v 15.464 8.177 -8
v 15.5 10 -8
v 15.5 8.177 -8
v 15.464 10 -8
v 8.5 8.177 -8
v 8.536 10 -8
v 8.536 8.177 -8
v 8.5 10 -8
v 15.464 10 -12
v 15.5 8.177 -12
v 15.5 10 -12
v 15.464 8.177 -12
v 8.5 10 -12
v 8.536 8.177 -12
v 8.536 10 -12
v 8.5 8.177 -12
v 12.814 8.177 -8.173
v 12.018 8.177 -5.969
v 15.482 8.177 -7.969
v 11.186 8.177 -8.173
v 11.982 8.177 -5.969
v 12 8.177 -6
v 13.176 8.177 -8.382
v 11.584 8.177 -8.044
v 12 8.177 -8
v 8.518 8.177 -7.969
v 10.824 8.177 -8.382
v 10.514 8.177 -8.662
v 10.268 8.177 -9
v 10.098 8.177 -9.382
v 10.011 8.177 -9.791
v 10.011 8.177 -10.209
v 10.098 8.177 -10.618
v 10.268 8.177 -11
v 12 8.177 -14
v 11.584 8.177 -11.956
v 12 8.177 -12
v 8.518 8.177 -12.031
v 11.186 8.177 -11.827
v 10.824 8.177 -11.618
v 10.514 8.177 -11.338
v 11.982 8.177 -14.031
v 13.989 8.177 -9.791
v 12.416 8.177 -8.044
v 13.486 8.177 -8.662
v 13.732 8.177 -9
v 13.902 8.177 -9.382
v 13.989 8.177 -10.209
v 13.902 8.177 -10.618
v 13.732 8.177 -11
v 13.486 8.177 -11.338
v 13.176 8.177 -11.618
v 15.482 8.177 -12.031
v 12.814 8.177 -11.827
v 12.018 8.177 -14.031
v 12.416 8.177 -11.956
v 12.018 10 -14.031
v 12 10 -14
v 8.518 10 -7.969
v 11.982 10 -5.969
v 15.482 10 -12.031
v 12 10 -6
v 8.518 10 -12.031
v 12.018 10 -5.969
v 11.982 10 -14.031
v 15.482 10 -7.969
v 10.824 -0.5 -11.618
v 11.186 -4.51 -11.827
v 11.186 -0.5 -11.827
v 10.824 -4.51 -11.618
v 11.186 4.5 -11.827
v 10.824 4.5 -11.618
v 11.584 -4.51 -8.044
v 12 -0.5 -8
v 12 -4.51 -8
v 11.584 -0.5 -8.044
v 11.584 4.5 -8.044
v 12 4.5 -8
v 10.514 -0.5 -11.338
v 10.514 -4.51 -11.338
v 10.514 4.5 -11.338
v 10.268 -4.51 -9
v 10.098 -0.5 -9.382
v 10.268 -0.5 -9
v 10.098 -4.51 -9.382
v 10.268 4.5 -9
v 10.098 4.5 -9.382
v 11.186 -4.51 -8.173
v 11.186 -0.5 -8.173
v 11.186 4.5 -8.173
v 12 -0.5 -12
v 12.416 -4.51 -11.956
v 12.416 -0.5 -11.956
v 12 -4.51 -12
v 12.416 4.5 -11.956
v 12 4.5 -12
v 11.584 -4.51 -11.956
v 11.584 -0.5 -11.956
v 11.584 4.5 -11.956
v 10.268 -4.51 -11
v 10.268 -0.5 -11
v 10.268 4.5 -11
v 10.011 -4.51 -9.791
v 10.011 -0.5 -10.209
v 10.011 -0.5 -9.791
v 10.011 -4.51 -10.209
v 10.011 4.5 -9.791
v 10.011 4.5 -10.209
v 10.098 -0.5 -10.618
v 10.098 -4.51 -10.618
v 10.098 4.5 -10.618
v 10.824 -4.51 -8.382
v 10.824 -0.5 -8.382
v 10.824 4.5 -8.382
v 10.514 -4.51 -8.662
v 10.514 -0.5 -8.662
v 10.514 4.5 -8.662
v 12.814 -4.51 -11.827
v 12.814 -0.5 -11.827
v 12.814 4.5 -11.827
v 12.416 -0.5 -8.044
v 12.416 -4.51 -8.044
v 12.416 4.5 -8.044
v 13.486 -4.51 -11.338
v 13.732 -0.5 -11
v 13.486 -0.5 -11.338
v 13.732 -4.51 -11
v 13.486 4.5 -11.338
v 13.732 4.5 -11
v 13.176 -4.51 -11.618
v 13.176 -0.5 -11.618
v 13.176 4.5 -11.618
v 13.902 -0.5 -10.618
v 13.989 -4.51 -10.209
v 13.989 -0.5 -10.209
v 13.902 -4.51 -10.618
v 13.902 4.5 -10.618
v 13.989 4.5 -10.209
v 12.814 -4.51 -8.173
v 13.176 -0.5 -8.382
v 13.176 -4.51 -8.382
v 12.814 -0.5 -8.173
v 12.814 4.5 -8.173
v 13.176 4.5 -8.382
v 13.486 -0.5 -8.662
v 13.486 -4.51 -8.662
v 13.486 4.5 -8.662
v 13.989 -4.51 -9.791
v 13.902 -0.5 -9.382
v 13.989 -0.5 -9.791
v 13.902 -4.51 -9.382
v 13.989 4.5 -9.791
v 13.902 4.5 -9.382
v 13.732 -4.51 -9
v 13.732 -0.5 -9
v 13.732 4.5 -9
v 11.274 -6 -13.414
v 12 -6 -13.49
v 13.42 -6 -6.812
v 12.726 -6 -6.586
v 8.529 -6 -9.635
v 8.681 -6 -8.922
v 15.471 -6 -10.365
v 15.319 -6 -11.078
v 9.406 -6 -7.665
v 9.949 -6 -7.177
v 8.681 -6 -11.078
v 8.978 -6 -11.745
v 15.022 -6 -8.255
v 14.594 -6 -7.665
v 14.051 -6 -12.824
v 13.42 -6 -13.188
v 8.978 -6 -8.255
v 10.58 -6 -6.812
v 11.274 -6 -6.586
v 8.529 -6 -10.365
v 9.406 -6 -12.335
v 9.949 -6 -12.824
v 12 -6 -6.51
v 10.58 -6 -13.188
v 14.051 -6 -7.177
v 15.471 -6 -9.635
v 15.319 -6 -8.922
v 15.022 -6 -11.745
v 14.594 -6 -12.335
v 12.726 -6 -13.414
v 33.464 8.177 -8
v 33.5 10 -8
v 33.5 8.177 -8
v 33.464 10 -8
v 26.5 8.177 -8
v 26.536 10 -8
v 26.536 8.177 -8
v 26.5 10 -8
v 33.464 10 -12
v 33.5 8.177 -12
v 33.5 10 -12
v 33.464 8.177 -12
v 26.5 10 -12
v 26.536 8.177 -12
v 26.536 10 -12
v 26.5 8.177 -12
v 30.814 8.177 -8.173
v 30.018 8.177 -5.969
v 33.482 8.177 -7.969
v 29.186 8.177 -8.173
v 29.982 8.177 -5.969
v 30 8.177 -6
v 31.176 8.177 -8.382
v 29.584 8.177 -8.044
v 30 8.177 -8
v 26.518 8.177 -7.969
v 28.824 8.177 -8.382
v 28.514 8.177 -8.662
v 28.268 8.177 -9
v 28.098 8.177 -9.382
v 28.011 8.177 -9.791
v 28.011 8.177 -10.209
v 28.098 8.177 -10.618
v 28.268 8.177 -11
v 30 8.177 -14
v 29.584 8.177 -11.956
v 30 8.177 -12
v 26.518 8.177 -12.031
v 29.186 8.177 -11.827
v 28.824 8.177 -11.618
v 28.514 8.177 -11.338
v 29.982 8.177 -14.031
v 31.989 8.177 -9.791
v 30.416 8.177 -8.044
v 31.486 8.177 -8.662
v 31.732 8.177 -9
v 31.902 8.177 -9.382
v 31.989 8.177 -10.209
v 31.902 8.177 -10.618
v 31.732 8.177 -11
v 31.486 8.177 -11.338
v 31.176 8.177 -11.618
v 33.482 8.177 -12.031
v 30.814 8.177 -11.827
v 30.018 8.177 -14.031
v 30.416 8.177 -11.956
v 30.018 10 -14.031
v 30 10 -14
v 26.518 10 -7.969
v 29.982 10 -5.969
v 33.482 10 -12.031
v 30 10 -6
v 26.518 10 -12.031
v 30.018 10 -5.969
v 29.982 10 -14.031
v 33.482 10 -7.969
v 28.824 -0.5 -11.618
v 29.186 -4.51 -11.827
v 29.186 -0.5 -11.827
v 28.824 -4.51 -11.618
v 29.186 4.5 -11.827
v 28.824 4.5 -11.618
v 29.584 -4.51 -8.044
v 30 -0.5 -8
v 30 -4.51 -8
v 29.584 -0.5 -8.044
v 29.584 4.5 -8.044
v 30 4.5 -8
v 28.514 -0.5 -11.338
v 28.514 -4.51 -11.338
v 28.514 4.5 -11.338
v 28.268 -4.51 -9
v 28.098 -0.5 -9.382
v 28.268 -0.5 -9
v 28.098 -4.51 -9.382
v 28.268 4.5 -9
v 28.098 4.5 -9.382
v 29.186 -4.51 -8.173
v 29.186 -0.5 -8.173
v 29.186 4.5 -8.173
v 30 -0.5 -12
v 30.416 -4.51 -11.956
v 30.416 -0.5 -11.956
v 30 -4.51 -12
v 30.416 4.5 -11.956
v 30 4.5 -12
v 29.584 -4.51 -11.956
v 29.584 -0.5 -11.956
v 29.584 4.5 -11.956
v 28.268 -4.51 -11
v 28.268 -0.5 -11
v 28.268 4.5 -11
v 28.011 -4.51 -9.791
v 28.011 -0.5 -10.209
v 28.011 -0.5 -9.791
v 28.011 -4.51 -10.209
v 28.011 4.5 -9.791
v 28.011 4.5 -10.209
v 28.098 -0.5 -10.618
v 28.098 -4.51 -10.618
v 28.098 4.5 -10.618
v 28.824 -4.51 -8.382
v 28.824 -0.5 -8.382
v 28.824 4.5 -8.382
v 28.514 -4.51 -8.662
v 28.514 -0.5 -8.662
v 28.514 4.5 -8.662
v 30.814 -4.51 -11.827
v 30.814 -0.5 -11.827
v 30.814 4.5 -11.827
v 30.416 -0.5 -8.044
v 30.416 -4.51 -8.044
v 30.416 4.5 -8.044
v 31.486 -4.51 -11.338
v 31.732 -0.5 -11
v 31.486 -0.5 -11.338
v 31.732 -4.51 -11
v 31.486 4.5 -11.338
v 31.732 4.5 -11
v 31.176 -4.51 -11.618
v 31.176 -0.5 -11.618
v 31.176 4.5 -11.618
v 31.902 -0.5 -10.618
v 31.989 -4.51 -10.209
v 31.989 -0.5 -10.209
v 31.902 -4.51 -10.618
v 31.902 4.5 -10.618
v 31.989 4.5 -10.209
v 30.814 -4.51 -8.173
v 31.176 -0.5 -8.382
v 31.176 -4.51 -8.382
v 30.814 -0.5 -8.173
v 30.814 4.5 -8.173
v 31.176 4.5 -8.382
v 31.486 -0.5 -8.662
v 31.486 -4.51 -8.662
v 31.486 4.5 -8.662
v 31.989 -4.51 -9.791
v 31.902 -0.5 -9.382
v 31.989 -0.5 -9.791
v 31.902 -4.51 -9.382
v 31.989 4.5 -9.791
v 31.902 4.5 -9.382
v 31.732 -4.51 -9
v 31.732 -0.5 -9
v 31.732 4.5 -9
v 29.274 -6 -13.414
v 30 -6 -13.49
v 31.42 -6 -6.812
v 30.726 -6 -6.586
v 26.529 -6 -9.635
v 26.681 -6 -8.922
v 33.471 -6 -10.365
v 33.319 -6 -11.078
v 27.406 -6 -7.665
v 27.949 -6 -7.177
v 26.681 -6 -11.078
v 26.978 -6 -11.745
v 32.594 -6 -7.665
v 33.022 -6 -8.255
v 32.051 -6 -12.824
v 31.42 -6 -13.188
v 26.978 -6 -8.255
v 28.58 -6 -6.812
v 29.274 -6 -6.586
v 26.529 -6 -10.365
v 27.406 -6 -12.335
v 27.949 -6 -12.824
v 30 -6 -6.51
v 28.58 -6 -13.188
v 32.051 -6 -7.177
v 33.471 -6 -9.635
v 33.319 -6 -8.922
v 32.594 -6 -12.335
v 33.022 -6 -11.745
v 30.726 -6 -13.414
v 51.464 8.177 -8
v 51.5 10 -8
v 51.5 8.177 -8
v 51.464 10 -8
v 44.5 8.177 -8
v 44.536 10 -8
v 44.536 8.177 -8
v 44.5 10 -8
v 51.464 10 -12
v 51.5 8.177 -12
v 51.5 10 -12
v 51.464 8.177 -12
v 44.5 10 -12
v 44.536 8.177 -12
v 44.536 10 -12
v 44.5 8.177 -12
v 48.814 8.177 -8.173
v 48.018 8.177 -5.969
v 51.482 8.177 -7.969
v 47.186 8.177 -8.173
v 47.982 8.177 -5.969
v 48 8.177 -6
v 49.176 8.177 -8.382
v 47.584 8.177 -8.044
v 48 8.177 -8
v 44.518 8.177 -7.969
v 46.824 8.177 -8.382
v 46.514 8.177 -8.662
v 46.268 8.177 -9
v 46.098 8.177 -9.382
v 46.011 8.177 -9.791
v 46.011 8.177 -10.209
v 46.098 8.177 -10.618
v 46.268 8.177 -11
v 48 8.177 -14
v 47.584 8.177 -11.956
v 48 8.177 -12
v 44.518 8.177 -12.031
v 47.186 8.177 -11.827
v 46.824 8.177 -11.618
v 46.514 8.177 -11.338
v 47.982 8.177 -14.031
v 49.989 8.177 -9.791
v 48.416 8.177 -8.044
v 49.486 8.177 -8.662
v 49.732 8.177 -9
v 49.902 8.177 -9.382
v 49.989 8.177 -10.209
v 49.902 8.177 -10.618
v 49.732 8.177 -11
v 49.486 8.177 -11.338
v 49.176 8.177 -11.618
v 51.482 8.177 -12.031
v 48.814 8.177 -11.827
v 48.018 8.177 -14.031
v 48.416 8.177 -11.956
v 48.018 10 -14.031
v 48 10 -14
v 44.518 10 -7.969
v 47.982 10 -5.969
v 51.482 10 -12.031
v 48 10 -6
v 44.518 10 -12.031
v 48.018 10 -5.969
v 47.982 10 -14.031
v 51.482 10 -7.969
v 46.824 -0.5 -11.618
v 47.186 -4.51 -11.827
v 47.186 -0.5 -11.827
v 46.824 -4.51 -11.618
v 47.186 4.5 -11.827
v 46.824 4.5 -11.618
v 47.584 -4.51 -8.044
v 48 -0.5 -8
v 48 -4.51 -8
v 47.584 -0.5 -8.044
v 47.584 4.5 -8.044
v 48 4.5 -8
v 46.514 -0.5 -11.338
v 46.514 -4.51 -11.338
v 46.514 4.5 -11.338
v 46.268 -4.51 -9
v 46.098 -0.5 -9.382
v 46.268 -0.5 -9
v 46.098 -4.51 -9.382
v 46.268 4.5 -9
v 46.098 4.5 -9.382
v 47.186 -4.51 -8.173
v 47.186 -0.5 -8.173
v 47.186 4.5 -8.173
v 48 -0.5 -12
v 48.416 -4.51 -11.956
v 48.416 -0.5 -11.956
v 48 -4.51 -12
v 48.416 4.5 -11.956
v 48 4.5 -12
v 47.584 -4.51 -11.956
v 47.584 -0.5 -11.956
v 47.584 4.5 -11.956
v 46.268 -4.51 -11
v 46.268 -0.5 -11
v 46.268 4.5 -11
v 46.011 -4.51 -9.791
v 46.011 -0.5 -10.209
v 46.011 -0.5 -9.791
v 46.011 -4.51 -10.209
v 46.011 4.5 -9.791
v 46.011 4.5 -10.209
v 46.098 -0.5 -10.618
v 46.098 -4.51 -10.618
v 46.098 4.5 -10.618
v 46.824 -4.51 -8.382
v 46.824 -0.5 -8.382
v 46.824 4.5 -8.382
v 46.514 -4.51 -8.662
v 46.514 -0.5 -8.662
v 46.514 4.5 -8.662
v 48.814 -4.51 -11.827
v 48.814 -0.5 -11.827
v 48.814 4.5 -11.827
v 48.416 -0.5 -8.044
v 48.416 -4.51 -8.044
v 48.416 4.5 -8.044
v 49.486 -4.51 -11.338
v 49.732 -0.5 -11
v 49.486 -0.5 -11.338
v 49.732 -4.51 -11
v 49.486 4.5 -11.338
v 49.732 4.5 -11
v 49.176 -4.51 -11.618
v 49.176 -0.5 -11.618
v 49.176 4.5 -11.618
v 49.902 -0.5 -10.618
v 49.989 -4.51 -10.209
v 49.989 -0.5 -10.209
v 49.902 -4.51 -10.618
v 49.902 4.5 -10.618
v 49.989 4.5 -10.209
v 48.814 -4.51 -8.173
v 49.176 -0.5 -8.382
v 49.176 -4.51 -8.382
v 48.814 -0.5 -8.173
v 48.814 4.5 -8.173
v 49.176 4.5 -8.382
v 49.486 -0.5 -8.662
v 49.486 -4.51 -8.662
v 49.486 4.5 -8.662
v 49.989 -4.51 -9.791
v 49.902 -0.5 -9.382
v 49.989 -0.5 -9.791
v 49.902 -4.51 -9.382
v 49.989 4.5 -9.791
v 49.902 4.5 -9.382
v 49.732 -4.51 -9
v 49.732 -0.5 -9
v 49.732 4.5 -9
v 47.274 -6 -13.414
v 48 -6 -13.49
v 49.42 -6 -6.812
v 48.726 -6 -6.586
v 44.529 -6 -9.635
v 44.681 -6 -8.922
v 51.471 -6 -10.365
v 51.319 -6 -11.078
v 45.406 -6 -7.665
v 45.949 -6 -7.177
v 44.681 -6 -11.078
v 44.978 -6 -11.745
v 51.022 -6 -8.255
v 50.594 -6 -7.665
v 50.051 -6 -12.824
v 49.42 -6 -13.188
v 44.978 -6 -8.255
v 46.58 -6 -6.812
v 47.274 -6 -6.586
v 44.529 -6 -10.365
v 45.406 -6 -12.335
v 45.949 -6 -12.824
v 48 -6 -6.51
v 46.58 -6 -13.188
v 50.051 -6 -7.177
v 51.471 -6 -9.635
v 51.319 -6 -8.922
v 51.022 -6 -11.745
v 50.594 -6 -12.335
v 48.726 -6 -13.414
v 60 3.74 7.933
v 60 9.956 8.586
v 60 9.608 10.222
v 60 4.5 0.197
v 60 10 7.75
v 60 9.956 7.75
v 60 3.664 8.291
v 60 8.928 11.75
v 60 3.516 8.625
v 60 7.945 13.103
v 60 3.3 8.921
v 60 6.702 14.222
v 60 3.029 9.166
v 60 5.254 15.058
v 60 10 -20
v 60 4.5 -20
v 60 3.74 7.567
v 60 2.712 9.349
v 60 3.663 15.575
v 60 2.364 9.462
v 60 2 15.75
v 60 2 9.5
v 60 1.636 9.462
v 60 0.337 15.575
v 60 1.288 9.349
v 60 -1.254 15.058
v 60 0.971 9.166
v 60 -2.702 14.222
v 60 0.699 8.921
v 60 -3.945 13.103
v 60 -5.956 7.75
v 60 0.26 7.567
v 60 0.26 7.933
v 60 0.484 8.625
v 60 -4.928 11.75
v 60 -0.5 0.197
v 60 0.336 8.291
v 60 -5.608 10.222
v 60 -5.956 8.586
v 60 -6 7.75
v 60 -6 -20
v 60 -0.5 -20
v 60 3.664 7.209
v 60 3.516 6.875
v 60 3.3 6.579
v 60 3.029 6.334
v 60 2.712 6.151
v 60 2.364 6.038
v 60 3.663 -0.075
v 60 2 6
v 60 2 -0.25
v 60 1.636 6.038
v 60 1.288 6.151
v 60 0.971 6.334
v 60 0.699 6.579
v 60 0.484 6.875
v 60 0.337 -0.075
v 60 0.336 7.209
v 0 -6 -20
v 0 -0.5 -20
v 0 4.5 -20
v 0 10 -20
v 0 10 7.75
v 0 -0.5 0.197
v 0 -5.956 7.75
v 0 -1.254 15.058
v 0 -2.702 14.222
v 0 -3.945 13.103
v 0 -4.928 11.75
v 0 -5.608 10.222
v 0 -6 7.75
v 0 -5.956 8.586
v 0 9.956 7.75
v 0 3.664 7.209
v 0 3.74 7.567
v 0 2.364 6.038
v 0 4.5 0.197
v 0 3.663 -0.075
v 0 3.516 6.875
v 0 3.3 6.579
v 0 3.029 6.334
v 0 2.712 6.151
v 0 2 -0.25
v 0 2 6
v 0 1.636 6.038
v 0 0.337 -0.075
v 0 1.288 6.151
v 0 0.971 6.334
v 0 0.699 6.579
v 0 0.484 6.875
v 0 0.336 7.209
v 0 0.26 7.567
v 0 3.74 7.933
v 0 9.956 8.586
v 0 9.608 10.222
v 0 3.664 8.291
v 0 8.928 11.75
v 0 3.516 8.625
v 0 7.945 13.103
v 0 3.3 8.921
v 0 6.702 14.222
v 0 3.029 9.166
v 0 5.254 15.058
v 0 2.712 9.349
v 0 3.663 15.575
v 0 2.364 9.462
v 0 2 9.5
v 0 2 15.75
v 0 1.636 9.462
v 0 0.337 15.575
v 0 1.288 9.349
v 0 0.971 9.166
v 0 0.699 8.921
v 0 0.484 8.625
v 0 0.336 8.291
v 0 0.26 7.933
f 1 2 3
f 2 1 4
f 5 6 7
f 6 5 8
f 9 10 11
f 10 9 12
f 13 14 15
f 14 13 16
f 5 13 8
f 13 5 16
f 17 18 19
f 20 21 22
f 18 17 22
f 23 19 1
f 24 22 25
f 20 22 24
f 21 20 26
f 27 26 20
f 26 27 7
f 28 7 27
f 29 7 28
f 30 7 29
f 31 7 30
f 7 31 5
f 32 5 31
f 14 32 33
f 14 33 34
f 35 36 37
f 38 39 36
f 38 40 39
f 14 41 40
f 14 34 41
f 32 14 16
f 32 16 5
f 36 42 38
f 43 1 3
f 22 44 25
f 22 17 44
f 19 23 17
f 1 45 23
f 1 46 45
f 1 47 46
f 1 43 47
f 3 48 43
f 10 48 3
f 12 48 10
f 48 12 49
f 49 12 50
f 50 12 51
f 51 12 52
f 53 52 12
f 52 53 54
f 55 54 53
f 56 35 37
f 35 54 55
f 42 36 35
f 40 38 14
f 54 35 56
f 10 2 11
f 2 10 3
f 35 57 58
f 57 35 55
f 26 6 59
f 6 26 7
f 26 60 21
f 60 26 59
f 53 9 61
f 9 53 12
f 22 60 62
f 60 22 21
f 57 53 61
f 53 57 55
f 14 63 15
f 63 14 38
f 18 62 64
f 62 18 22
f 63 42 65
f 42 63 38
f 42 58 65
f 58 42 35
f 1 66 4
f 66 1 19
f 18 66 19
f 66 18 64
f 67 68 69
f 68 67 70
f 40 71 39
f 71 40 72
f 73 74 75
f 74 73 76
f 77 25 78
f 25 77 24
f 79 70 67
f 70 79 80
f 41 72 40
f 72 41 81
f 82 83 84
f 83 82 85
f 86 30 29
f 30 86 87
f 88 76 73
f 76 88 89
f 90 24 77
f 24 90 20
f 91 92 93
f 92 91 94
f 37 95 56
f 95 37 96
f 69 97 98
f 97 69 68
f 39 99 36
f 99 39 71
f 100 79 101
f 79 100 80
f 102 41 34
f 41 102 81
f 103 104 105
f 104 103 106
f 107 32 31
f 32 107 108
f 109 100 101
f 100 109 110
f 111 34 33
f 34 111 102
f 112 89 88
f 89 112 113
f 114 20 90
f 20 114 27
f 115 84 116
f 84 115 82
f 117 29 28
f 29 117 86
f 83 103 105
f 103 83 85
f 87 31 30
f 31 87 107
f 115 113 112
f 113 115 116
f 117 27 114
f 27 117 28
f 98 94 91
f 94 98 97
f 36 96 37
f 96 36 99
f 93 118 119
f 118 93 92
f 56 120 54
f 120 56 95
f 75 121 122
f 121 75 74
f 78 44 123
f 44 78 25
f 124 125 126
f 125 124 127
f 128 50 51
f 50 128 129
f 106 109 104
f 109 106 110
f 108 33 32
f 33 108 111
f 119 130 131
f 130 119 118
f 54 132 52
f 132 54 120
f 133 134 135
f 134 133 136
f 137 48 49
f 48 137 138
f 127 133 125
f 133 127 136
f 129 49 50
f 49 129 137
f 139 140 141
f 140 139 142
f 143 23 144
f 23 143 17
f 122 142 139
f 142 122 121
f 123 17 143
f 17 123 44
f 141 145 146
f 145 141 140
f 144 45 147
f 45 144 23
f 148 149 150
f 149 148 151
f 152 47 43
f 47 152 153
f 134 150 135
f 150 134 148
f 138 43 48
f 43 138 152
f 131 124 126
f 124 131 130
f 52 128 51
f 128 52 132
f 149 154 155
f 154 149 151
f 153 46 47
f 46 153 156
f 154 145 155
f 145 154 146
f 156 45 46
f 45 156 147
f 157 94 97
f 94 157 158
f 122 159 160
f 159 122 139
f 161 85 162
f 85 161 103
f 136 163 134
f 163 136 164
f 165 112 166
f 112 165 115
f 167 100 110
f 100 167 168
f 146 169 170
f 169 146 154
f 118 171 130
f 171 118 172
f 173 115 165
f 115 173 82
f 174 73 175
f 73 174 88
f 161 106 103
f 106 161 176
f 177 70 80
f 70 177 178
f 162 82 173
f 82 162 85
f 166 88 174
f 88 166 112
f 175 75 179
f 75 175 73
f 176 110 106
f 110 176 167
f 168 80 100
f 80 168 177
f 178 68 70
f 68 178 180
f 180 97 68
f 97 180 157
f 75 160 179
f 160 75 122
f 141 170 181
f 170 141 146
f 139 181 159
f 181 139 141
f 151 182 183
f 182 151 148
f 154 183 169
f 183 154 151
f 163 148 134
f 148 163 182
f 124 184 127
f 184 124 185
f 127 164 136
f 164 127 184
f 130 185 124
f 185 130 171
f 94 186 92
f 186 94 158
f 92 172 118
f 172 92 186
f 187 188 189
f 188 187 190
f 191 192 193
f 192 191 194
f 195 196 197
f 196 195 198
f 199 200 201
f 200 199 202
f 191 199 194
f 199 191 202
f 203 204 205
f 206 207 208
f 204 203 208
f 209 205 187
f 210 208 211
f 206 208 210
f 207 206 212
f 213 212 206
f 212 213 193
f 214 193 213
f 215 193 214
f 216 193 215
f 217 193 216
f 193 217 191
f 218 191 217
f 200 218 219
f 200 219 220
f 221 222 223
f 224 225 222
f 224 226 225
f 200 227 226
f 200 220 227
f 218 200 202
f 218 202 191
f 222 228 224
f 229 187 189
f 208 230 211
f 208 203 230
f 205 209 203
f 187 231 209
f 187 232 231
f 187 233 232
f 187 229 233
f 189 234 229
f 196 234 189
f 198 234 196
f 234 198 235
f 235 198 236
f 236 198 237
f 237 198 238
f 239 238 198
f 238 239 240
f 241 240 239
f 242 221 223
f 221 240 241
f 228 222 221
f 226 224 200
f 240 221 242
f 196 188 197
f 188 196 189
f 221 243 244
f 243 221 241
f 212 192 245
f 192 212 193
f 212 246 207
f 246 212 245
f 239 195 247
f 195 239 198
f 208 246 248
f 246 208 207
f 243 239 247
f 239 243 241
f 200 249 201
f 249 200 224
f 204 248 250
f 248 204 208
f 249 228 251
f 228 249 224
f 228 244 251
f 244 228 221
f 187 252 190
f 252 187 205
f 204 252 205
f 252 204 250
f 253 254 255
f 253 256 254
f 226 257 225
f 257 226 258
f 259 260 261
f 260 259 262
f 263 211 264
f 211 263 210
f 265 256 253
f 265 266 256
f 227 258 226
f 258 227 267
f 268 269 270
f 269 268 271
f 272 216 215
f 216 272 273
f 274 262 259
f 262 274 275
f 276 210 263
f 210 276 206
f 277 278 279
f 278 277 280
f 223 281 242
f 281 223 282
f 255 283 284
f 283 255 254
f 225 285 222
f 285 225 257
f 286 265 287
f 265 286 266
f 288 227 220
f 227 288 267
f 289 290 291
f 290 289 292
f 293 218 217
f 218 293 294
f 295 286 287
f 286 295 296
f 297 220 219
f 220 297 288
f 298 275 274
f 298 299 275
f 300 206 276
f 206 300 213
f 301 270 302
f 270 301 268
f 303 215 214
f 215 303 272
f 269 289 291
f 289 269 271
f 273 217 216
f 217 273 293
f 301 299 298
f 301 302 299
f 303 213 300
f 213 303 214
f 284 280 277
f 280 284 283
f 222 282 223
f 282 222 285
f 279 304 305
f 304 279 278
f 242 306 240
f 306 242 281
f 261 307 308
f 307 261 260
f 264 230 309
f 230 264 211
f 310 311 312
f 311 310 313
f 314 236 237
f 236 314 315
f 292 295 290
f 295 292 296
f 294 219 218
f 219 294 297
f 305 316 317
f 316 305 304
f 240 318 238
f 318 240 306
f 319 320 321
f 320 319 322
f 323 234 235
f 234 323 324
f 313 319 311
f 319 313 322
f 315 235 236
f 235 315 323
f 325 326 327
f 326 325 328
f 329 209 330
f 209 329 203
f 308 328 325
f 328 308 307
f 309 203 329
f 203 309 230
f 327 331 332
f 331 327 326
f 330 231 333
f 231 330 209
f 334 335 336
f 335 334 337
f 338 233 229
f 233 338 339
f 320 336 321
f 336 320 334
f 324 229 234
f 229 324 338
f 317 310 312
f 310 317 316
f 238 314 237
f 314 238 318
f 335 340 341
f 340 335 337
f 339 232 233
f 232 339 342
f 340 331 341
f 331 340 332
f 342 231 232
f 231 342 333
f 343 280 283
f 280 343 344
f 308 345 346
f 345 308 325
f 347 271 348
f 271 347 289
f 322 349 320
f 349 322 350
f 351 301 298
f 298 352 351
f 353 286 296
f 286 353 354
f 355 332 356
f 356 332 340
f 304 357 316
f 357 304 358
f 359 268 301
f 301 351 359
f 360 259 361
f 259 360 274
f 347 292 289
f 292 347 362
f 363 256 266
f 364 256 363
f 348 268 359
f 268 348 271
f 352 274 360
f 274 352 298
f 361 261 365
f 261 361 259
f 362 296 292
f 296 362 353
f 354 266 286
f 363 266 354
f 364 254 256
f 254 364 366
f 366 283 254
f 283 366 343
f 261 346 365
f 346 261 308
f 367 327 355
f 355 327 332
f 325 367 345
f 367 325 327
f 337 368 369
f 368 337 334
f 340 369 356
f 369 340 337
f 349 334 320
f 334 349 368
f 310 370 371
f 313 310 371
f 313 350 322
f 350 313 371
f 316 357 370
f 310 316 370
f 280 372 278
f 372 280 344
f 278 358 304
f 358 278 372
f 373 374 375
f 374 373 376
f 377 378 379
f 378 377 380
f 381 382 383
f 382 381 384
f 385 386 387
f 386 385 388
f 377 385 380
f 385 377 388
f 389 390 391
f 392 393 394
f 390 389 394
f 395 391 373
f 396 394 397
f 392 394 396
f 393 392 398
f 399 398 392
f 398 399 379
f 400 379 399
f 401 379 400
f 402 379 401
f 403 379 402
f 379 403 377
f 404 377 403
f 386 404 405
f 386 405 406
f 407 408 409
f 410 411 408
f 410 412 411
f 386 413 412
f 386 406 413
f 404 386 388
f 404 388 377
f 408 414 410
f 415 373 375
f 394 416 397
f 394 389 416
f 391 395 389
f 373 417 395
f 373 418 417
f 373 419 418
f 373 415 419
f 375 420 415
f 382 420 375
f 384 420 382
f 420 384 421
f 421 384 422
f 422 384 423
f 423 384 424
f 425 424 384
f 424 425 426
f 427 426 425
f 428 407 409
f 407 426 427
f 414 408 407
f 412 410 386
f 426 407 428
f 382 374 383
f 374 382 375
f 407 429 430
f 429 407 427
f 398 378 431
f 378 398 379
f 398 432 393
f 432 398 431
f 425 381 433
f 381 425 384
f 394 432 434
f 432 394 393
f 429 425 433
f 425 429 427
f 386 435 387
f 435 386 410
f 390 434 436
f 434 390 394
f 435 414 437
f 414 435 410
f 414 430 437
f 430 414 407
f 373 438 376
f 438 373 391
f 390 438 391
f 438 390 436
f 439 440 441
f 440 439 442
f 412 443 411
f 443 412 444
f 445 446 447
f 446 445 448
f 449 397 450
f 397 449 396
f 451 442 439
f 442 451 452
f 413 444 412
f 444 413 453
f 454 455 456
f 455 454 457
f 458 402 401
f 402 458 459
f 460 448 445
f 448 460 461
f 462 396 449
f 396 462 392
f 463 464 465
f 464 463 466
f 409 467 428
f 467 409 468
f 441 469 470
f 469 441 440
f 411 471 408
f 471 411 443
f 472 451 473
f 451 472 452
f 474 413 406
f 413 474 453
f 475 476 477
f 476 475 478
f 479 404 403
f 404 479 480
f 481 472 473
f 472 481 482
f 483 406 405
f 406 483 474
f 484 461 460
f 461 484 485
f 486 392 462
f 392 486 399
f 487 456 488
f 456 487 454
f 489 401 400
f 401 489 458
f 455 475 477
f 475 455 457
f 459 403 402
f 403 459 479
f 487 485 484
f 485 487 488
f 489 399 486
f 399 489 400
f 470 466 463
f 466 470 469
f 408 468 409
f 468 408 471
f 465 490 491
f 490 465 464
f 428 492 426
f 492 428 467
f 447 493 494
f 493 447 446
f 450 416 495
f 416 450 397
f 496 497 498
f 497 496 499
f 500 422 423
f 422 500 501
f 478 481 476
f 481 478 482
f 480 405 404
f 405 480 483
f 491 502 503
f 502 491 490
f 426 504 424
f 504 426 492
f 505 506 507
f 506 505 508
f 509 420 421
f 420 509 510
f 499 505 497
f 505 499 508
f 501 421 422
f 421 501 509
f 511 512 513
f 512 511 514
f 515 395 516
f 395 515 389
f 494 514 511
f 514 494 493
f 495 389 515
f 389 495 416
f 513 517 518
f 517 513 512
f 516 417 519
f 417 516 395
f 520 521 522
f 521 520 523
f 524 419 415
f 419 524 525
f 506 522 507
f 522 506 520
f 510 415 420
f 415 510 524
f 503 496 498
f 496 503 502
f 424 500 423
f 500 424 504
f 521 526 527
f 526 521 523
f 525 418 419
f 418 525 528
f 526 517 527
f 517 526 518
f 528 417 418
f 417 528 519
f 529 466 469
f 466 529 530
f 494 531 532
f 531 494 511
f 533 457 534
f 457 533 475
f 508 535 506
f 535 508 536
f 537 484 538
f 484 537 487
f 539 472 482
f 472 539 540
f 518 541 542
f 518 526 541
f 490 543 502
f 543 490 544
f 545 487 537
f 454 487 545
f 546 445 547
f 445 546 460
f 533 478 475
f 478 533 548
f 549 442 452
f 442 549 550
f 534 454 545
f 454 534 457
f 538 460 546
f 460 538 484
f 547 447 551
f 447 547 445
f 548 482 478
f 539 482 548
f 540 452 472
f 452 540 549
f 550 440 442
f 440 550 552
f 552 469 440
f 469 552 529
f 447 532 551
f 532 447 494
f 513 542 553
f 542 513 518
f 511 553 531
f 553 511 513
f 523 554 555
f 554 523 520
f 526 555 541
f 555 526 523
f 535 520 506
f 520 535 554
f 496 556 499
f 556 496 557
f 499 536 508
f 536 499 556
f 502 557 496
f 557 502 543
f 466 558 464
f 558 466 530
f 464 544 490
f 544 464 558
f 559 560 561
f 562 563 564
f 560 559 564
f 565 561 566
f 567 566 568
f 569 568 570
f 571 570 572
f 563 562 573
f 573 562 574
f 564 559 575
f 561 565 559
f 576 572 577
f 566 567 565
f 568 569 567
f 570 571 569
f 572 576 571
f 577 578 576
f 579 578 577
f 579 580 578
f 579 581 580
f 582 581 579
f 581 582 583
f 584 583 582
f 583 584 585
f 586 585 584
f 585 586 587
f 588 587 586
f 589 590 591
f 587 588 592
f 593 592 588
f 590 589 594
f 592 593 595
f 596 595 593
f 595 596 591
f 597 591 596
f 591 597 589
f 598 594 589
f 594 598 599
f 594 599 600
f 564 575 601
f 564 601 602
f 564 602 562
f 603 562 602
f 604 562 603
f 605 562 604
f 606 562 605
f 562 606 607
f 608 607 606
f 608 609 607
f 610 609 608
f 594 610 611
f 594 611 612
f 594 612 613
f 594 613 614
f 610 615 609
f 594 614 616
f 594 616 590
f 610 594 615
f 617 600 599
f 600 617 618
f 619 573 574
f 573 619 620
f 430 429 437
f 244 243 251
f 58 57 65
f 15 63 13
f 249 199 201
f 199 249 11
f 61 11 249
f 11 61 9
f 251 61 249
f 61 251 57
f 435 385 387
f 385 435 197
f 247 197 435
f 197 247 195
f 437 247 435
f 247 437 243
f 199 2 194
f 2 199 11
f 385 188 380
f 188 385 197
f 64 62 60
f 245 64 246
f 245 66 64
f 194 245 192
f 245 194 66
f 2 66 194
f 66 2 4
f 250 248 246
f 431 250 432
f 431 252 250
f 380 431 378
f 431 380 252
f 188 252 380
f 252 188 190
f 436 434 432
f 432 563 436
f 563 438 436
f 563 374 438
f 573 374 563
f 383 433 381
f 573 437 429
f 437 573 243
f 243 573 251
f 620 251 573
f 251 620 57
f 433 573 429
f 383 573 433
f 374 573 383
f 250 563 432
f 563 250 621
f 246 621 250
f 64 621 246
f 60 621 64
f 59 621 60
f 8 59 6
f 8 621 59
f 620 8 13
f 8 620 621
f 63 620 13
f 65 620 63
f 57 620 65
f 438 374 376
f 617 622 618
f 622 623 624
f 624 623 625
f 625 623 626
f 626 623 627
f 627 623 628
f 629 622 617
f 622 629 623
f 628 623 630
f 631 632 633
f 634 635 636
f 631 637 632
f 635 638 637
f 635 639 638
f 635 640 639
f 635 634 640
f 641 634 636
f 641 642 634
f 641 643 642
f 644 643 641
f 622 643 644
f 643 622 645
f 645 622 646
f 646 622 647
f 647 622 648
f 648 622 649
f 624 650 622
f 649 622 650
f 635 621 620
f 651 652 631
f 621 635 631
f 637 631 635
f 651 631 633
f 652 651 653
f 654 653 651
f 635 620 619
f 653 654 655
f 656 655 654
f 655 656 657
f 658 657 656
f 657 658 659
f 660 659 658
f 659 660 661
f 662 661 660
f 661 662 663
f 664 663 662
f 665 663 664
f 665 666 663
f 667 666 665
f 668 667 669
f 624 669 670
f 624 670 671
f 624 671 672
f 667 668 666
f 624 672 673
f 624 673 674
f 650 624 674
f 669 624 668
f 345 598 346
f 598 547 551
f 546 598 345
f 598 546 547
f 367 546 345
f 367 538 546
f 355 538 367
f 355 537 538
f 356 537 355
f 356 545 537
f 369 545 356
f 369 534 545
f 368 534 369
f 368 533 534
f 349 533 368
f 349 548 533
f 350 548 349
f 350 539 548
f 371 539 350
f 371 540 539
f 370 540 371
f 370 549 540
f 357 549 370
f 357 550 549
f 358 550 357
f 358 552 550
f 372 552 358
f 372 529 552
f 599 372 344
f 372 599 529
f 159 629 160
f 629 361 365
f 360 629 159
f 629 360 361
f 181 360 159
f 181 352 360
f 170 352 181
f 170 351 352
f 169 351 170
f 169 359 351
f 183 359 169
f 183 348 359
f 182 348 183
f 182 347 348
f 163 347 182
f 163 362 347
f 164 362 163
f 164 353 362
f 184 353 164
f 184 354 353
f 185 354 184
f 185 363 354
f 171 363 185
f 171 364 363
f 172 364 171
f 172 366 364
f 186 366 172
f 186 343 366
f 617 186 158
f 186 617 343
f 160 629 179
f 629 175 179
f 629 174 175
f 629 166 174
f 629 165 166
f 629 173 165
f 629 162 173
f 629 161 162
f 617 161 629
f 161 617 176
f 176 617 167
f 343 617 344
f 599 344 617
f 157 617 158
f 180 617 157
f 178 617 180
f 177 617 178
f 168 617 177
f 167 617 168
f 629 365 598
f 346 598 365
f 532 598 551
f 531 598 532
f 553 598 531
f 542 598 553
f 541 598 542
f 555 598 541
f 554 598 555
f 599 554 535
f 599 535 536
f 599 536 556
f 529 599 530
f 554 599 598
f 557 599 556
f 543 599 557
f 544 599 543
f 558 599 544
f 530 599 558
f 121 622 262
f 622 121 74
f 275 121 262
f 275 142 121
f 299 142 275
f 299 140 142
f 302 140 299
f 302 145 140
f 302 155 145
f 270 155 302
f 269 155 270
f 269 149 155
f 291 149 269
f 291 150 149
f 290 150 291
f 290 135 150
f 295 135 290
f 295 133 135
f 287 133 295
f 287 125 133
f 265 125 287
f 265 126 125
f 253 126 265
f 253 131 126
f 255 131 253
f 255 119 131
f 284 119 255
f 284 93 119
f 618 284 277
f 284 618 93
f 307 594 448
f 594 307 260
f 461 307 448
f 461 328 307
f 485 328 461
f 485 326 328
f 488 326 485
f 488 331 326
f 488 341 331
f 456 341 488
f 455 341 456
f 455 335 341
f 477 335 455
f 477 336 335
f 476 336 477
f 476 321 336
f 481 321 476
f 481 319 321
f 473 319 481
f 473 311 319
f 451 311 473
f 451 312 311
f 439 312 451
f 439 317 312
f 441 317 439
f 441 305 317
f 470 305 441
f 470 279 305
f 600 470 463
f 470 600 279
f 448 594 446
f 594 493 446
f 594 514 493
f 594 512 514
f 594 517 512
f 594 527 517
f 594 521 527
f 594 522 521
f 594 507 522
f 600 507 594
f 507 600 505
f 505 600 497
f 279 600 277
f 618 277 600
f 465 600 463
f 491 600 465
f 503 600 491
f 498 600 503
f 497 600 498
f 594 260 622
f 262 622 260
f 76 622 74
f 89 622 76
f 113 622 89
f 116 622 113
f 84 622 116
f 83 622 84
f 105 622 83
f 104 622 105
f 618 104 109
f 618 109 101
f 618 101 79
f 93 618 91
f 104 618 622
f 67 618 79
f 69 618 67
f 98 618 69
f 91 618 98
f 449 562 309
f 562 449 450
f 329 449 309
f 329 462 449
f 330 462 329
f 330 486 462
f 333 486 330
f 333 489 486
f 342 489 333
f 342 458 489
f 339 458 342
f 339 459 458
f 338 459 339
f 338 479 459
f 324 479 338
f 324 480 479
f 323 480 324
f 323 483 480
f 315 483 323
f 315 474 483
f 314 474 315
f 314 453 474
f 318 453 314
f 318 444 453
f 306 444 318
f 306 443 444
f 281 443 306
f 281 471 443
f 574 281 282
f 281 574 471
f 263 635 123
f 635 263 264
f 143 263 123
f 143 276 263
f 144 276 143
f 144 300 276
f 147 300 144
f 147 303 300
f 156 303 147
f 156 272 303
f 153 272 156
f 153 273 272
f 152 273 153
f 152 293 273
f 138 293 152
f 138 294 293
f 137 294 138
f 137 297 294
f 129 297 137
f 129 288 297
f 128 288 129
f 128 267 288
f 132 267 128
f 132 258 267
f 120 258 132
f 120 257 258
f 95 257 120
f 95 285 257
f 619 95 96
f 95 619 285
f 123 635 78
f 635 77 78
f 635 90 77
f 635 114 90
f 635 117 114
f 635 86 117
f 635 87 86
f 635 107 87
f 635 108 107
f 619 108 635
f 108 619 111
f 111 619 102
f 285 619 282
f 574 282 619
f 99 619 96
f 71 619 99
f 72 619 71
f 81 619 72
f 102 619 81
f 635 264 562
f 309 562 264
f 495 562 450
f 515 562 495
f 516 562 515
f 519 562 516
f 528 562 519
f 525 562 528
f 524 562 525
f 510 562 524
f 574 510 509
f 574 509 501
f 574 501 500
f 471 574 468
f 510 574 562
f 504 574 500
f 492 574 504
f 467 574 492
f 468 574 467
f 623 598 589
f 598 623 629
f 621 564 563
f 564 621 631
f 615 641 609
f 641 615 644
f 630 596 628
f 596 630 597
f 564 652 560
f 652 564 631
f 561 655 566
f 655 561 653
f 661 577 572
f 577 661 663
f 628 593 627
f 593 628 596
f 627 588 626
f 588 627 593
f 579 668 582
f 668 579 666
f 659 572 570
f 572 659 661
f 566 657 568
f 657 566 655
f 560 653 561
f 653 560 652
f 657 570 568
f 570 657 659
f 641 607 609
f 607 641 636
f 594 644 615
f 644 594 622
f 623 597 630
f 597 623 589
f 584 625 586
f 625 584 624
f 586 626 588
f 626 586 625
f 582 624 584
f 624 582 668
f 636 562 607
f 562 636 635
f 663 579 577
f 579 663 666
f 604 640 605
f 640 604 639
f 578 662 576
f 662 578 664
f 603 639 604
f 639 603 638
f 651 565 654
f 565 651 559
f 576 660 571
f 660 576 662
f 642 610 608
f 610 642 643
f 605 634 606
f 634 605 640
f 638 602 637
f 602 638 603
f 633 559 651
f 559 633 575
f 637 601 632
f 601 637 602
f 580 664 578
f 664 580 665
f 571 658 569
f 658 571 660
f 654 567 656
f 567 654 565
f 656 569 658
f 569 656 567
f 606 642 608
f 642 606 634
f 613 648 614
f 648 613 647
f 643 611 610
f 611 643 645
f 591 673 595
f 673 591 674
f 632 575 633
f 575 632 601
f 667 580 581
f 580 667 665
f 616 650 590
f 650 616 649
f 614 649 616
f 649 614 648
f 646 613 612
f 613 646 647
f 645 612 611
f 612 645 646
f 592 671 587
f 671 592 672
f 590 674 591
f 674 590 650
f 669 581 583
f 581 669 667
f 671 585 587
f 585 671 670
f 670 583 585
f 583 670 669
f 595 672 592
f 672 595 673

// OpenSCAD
// file: utilities.scad
include <constants.scad>;

module bolt(diameter, depth) {
    translate([0, 0, depth/2]) union() {
        cube([diameter/1.75, diameter, depth], center=true);
        rotate([0, 0, 60]) cube([diameter/1.75, diameter, depth], center=true);
        rotate([0, 0, 120]) cube([diameter/1.75, diameter, depth], center=true);
    }
}

module roundedBox(width, height, radius) {
    union() {
        translate([radius, 0]) square([width-2*radius, height]);
        translate([0, radius]) square([width, height-2*radius]);
        translate([radius, radius]) circle(r=radius, $fs=cylinder_precision);
        translate([width-radius, radius]) circle(r=radius, $fs=cylinder_precision);
        translate([radius, height-radius]) circle(r=radius, $fs=cylinder_precision);
        translate([width-radius, height-radius]) circle(r=radius, $fs=cylinder_precision);
    }
}

first_mounting_hole_left = (arm_width - mounting_holes_spacing * (mounting_holes-1)) / 2;
arm_housing_space = arm_thickness+hinge_arm_housing_allowance;
holder_thickness = (hinge_thickness-arm_housing_space)/2;
base_distance_to_axle_center = hinge_thickness / 2 + base_hinge_allowance;
servo_holder_base_to_arm_distance = servo_axle_top_distance_from_holder_base+servo_holder_thickness;
servo_holder_width = servo_width + servo_holder_thickness*2;
spring_hook_hole_distance_from_arm = spring_hook_width - spring_hook_height / 2;
// file: constants.scad
// ================================================
// structural parameters (can play with these)
//

// arm
arm_length = 200;
arm_width = 60;
arm_thickness = 4;
arm_ready_degrees = 45;

// hand
palm_width = 100;

// spring hook
spring_hook_distance = 100;
spring_hook_width = 10;
spring_hook_height = 8;
spring_hook_hole_diameter = 3;

// mounting holes
mounting_holes = 3;
mounting_holes_spacing = 18; // center to center
mounting_holes_distance_from_bottom = 10; // border to center

// screws and bolts
screw_diameter = 4; // TODO: add some allowance for the 3D printer
screw_head_diameter = 7; // probably here too...
screw_bolt_diameter = 7; // TODO: add some allowance for the 3D printer

// hinge
hinge_thickness = 16;
hinge_arm_housing_allowance = 1;
hinge_axle_housing_allowance = 0.5;

// axle
axle_diameter = 3;
axle_length = 71;

// base
base_thickness = 5;
base_length = 100;
base_hinge_allowance = 2;
base_arm_horizontal_gap = 2;
base_axle_mount_allowance = 0.5;
base_axle_side_thickness = 3;

// small servo
servo_width = 12;
servo_length = 23;
servo_screws = 1; // number of screws on each side
servo_screw_diameter = 2;
servo_screws_distance_from_servo = 3; // from center
servo_distance_between_screws = 11;
servo_axle_distance_from_front = 5;
servo_axle_top_distance_from_holder_base = 17;

// servo holder
servo_holder_thickness = 5;

// spring servo arm
spring_servo_arm_width = 8;
spring_servo_arm_spring_hole_distance = 25;
spring_servo_arm_screw_diameter = 3;
spring_servo_arm_hole_diameter = 5;
spring_servo_arm_distance_between_screws = 10;
spring_servo_arm_thickness = 4;

// holder servo
holder_servo_gap_from_arm = 3;
holder_servo_distance = 80;

// holder servo arm
holder_servo_arm_spring_hole_distance = 16;

// ================================================
// aesthetic parameters (best not to change)
//
fingers_gap = palm_width / 30;
palm_height = palm_width / 6 * 5;
rounding_radius = palm_width / 6;
finger_length_perc = [1.25, 1.3, 1.4, 1.35, 1.2];


// ================================================
// technical parameters for rendering
//
cylinder_precision = 0.05;
abbundance_for_subtraction = 0.01;
// main file
include <constants.scad>;
include <utilities.scad>;

module hinge() {
    axle_hole_diameter = axle_diameter + hinge_axle_housing_allowance;
    axle_section_size = axle_hole_diameter / 2 + hinge_thickness;
    bolt_housing_depth = holder_thickness / 3;
    housing_depth = mounting_holes_distance_from_bottom*2 + hinge_arm_housing_allowance/2;

    translate([-holder_thickness-hinge_arm_housing_allowance/2, -holder_thickness-hinge_arm_housing_allowance/2, 0]) {
        difference() {
            // Body of the hinge
            cube([holder_thickness + housing_depth, hinge_thickness, arm_width]);

            // Housing for the arm
            translate([holder_thickness, holder_thickness, -abbundance_for_subtraction]) cube([housing_depth+abbundance_for_subtraction, arm_housing_space, arm_width+2*abbundance_for_subtraction]);

            // mouting holes
            for (holeIdx=[0 : mounting_holes-1]) {
                translate([mounting_holes_distance_from_bottom + hinge_arm_housing_allowance*2 + screw_diameter, 0, first_mounting_hole_left+mounting_holes_spacing*holeIdx]) {
                    rotate([-90, 0, 0]) union() {
                        // body of the screw
                        cylinder(r=screw_diameter/2, h=hinge_thickness, $fs=cylinder_precision);
                        // housing for screw head
                        translate([0, 0, -abbundance_for_subtraction]) cylinder(r1=screw_head_diameter/2, r2=0, h=screw_head_diameter/2, $fs=cylinder_precision);
                        // housing for bolts
                        translate([0, 0, hinge_thickness-bolt_housing_depth+abbundance_for_subtraction]) rotate([0, 0, 0]) bolt(screw_bolt_diameter, bolt_housing_depth);
                    }
                }
            }
        }

        // axle housing
        difference() {
            union() {
                translate([-axle_hole_diameter / 2, 0, 0]) cube([axle_hole_diameter / 2, hinge_thickness, arm_width]);
                translate([-axle_hole_diameter / 2, hinge_thickness/2, 0]) cylinder(r=hinge_thickness/2, h=arm_width, $fs=cylinder_precision);
            }
            translate([-axle_hole_diameter / 2, hinge_thickness/2, -abbundance_for_subtraction/2]) cylinder(r=axle_hole_diameter/2, h=arm_width+abbundance_for_subtraction, $fs=cylinder_precision);
        }
    }
}

rotate([0, 90, 0]) hinge();
